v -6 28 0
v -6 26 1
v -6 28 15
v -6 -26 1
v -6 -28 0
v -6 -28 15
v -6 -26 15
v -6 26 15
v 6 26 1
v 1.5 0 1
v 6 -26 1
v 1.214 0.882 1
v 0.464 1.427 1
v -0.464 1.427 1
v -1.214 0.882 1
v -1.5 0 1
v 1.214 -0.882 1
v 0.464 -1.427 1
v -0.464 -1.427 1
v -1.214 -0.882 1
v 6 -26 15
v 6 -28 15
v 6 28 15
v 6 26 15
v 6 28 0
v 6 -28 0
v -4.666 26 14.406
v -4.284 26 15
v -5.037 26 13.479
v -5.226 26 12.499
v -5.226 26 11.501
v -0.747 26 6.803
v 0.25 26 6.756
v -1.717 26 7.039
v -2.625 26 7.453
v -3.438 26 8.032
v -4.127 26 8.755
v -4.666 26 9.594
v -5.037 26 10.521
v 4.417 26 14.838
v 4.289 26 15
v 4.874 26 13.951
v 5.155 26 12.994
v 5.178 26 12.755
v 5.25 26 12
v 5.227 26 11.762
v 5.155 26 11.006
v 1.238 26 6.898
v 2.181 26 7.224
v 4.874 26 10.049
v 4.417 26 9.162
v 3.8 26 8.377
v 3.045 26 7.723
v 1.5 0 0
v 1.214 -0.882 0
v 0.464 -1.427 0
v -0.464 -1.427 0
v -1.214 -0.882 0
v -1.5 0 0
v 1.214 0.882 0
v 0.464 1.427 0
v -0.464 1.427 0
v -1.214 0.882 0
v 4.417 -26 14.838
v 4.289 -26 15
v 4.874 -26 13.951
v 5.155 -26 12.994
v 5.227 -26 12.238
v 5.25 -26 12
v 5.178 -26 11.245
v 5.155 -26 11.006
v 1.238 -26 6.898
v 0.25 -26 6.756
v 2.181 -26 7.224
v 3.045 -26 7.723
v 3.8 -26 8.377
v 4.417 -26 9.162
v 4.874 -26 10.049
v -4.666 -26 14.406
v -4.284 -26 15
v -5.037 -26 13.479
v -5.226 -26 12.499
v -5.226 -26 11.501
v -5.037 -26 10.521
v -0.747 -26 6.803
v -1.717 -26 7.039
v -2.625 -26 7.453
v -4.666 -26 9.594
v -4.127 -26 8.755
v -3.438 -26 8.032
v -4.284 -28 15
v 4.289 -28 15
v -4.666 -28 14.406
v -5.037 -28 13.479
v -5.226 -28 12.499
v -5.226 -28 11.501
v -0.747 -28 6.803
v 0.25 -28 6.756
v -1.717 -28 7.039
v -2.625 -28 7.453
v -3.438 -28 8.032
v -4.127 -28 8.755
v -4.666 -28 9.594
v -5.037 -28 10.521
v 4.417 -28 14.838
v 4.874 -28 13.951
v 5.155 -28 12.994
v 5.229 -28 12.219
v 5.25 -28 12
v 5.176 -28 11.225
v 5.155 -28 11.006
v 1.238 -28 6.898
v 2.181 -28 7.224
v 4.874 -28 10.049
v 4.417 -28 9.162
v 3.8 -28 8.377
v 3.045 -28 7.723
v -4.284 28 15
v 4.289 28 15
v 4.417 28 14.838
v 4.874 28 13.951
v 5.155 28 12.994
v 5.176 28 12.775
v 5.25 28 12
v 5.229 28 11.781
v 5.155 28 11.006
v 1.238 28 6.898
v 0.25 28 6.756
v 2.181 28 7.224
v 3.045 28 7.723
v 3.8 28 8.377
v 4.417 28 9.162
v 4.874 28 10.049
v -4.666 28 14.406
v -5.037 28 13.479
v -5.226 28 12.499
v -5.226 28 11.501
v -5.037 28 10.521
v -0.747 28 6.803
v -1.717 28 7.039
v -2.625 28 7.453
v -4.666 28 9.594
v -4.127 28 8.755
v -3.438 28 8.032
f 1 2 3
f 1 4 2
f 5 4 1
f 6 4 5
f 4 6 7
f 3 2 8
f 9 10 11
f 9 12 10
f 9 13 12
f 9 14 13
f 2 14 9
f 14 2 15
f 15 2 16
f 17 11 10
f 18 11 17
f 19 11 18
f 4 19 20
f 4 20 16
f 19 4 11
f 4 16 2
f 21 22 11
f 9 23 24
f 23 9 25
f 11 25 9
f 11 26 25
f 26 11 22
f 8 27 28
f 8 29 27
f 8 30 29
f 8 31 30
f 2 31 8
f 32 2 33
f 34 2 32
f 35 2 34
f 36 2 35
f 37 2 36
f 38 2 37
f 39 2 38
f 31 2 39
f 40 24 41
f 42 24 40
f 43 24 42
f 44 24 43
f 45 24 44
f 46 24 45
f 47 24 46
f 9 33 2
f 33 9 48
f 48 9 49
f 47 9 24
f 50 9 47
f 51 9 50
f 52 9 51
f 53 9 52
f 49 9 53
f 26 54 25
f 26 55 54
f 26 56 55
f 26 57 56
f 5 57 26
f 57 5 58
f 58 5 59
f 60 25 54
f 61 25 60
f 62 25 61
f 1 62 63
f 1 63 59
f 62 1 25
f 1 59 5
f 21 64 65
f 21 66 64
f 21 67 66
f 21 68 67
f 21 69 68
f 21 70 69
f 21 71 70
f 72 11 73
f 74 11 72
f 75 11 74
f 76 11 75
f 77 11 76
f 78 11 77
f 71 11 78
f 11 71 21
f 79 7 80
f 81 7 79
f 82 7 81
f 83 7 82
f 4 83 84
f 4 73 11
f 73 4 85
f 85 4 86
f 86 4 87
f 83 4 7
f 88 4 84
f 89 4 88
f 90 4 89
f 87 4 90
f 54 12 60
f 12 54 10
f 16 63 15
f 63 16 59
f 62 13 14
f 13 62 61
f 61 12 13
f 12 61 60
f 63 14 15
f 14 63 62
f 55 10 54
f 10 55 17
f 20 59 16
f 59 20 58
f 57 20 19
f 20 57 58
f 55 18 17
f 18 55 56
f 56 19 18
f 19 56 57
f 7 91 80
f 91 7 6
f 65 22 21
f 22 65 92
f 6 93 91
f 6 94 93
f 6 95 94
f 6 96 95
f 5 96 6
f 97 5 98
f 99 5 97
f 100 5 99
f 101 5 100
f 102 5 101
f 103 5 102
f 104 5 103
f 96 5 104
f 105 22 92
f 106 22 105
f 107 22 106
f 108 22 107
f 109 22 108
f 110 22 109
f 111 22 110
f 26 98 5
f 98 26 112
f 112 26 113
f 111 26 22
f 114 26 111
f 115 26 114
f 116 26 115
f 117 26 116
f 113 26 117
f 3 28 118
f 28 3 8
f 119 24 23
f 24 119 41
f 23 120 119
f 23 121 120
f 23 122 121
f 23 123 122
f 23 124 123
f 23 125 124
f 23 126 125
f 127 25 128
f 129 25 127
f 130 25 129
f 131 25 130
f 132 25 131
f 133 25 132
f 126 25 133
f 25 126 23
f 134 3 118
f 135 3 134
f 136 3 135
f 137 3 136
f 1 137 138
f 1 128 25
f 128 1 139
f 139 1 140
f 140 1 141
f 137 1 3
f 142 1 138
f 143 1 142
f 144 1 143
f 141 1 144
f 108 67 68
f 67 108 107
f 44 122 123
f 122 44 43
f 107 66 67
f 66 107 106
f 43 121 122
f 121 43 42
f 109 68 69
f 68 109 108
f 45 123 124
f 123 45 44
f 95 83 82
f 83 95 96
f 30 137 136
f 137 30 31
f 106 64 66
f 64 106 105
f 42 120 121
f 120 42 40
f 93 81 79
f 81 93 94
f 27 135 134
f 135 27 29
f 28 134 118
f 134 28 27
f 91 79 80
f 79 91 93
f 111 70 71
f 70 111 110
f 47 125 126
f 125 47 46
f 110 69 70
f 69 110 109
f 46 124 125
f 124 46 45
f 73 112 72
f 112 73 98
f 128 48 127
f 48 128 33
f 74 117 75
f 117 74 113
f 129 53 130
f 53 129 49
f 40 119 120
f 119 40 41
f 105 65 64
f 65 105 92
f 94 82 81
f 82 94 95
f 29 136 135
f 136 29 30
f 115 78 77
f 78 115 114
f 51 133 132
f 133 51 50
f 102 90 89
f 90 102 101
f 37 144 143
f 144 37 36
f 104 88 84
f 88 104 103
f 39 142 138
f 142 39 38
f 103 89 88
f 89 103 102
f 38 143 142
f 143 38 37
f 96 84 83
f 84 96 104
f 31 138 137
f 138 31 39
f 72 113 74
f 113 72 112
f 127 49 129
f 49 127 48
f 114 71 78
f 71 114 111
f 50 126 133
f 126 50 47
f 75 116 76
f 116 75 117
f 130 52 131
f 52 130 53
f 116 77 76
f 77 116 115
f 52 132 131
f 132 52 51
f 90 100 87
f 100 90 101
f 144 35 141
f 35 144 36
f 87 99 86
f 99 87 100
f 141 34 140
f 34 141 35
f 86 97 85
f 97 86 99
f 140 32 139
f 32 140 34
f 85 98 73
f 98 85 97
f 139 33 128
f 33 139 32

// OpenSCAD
$fs = 1;
$fa = 6;
wid = 52;
difference() {
    translate([0,0,0.5]) cube(size=[12, wid, 1], center=true);
    cylinder(d=3, h=10, center=true);
}
difference() {
    for (yy=[-1:2:1]) {
        translate([0, yy * (wid/2 + 1) , 15/2]) cube(size=[12, 2, 15], center=true);
    }
    translate([0,0, 12]) rotate([90,0,0]) cylinder(d=10.5, h=100, center=true);
}
